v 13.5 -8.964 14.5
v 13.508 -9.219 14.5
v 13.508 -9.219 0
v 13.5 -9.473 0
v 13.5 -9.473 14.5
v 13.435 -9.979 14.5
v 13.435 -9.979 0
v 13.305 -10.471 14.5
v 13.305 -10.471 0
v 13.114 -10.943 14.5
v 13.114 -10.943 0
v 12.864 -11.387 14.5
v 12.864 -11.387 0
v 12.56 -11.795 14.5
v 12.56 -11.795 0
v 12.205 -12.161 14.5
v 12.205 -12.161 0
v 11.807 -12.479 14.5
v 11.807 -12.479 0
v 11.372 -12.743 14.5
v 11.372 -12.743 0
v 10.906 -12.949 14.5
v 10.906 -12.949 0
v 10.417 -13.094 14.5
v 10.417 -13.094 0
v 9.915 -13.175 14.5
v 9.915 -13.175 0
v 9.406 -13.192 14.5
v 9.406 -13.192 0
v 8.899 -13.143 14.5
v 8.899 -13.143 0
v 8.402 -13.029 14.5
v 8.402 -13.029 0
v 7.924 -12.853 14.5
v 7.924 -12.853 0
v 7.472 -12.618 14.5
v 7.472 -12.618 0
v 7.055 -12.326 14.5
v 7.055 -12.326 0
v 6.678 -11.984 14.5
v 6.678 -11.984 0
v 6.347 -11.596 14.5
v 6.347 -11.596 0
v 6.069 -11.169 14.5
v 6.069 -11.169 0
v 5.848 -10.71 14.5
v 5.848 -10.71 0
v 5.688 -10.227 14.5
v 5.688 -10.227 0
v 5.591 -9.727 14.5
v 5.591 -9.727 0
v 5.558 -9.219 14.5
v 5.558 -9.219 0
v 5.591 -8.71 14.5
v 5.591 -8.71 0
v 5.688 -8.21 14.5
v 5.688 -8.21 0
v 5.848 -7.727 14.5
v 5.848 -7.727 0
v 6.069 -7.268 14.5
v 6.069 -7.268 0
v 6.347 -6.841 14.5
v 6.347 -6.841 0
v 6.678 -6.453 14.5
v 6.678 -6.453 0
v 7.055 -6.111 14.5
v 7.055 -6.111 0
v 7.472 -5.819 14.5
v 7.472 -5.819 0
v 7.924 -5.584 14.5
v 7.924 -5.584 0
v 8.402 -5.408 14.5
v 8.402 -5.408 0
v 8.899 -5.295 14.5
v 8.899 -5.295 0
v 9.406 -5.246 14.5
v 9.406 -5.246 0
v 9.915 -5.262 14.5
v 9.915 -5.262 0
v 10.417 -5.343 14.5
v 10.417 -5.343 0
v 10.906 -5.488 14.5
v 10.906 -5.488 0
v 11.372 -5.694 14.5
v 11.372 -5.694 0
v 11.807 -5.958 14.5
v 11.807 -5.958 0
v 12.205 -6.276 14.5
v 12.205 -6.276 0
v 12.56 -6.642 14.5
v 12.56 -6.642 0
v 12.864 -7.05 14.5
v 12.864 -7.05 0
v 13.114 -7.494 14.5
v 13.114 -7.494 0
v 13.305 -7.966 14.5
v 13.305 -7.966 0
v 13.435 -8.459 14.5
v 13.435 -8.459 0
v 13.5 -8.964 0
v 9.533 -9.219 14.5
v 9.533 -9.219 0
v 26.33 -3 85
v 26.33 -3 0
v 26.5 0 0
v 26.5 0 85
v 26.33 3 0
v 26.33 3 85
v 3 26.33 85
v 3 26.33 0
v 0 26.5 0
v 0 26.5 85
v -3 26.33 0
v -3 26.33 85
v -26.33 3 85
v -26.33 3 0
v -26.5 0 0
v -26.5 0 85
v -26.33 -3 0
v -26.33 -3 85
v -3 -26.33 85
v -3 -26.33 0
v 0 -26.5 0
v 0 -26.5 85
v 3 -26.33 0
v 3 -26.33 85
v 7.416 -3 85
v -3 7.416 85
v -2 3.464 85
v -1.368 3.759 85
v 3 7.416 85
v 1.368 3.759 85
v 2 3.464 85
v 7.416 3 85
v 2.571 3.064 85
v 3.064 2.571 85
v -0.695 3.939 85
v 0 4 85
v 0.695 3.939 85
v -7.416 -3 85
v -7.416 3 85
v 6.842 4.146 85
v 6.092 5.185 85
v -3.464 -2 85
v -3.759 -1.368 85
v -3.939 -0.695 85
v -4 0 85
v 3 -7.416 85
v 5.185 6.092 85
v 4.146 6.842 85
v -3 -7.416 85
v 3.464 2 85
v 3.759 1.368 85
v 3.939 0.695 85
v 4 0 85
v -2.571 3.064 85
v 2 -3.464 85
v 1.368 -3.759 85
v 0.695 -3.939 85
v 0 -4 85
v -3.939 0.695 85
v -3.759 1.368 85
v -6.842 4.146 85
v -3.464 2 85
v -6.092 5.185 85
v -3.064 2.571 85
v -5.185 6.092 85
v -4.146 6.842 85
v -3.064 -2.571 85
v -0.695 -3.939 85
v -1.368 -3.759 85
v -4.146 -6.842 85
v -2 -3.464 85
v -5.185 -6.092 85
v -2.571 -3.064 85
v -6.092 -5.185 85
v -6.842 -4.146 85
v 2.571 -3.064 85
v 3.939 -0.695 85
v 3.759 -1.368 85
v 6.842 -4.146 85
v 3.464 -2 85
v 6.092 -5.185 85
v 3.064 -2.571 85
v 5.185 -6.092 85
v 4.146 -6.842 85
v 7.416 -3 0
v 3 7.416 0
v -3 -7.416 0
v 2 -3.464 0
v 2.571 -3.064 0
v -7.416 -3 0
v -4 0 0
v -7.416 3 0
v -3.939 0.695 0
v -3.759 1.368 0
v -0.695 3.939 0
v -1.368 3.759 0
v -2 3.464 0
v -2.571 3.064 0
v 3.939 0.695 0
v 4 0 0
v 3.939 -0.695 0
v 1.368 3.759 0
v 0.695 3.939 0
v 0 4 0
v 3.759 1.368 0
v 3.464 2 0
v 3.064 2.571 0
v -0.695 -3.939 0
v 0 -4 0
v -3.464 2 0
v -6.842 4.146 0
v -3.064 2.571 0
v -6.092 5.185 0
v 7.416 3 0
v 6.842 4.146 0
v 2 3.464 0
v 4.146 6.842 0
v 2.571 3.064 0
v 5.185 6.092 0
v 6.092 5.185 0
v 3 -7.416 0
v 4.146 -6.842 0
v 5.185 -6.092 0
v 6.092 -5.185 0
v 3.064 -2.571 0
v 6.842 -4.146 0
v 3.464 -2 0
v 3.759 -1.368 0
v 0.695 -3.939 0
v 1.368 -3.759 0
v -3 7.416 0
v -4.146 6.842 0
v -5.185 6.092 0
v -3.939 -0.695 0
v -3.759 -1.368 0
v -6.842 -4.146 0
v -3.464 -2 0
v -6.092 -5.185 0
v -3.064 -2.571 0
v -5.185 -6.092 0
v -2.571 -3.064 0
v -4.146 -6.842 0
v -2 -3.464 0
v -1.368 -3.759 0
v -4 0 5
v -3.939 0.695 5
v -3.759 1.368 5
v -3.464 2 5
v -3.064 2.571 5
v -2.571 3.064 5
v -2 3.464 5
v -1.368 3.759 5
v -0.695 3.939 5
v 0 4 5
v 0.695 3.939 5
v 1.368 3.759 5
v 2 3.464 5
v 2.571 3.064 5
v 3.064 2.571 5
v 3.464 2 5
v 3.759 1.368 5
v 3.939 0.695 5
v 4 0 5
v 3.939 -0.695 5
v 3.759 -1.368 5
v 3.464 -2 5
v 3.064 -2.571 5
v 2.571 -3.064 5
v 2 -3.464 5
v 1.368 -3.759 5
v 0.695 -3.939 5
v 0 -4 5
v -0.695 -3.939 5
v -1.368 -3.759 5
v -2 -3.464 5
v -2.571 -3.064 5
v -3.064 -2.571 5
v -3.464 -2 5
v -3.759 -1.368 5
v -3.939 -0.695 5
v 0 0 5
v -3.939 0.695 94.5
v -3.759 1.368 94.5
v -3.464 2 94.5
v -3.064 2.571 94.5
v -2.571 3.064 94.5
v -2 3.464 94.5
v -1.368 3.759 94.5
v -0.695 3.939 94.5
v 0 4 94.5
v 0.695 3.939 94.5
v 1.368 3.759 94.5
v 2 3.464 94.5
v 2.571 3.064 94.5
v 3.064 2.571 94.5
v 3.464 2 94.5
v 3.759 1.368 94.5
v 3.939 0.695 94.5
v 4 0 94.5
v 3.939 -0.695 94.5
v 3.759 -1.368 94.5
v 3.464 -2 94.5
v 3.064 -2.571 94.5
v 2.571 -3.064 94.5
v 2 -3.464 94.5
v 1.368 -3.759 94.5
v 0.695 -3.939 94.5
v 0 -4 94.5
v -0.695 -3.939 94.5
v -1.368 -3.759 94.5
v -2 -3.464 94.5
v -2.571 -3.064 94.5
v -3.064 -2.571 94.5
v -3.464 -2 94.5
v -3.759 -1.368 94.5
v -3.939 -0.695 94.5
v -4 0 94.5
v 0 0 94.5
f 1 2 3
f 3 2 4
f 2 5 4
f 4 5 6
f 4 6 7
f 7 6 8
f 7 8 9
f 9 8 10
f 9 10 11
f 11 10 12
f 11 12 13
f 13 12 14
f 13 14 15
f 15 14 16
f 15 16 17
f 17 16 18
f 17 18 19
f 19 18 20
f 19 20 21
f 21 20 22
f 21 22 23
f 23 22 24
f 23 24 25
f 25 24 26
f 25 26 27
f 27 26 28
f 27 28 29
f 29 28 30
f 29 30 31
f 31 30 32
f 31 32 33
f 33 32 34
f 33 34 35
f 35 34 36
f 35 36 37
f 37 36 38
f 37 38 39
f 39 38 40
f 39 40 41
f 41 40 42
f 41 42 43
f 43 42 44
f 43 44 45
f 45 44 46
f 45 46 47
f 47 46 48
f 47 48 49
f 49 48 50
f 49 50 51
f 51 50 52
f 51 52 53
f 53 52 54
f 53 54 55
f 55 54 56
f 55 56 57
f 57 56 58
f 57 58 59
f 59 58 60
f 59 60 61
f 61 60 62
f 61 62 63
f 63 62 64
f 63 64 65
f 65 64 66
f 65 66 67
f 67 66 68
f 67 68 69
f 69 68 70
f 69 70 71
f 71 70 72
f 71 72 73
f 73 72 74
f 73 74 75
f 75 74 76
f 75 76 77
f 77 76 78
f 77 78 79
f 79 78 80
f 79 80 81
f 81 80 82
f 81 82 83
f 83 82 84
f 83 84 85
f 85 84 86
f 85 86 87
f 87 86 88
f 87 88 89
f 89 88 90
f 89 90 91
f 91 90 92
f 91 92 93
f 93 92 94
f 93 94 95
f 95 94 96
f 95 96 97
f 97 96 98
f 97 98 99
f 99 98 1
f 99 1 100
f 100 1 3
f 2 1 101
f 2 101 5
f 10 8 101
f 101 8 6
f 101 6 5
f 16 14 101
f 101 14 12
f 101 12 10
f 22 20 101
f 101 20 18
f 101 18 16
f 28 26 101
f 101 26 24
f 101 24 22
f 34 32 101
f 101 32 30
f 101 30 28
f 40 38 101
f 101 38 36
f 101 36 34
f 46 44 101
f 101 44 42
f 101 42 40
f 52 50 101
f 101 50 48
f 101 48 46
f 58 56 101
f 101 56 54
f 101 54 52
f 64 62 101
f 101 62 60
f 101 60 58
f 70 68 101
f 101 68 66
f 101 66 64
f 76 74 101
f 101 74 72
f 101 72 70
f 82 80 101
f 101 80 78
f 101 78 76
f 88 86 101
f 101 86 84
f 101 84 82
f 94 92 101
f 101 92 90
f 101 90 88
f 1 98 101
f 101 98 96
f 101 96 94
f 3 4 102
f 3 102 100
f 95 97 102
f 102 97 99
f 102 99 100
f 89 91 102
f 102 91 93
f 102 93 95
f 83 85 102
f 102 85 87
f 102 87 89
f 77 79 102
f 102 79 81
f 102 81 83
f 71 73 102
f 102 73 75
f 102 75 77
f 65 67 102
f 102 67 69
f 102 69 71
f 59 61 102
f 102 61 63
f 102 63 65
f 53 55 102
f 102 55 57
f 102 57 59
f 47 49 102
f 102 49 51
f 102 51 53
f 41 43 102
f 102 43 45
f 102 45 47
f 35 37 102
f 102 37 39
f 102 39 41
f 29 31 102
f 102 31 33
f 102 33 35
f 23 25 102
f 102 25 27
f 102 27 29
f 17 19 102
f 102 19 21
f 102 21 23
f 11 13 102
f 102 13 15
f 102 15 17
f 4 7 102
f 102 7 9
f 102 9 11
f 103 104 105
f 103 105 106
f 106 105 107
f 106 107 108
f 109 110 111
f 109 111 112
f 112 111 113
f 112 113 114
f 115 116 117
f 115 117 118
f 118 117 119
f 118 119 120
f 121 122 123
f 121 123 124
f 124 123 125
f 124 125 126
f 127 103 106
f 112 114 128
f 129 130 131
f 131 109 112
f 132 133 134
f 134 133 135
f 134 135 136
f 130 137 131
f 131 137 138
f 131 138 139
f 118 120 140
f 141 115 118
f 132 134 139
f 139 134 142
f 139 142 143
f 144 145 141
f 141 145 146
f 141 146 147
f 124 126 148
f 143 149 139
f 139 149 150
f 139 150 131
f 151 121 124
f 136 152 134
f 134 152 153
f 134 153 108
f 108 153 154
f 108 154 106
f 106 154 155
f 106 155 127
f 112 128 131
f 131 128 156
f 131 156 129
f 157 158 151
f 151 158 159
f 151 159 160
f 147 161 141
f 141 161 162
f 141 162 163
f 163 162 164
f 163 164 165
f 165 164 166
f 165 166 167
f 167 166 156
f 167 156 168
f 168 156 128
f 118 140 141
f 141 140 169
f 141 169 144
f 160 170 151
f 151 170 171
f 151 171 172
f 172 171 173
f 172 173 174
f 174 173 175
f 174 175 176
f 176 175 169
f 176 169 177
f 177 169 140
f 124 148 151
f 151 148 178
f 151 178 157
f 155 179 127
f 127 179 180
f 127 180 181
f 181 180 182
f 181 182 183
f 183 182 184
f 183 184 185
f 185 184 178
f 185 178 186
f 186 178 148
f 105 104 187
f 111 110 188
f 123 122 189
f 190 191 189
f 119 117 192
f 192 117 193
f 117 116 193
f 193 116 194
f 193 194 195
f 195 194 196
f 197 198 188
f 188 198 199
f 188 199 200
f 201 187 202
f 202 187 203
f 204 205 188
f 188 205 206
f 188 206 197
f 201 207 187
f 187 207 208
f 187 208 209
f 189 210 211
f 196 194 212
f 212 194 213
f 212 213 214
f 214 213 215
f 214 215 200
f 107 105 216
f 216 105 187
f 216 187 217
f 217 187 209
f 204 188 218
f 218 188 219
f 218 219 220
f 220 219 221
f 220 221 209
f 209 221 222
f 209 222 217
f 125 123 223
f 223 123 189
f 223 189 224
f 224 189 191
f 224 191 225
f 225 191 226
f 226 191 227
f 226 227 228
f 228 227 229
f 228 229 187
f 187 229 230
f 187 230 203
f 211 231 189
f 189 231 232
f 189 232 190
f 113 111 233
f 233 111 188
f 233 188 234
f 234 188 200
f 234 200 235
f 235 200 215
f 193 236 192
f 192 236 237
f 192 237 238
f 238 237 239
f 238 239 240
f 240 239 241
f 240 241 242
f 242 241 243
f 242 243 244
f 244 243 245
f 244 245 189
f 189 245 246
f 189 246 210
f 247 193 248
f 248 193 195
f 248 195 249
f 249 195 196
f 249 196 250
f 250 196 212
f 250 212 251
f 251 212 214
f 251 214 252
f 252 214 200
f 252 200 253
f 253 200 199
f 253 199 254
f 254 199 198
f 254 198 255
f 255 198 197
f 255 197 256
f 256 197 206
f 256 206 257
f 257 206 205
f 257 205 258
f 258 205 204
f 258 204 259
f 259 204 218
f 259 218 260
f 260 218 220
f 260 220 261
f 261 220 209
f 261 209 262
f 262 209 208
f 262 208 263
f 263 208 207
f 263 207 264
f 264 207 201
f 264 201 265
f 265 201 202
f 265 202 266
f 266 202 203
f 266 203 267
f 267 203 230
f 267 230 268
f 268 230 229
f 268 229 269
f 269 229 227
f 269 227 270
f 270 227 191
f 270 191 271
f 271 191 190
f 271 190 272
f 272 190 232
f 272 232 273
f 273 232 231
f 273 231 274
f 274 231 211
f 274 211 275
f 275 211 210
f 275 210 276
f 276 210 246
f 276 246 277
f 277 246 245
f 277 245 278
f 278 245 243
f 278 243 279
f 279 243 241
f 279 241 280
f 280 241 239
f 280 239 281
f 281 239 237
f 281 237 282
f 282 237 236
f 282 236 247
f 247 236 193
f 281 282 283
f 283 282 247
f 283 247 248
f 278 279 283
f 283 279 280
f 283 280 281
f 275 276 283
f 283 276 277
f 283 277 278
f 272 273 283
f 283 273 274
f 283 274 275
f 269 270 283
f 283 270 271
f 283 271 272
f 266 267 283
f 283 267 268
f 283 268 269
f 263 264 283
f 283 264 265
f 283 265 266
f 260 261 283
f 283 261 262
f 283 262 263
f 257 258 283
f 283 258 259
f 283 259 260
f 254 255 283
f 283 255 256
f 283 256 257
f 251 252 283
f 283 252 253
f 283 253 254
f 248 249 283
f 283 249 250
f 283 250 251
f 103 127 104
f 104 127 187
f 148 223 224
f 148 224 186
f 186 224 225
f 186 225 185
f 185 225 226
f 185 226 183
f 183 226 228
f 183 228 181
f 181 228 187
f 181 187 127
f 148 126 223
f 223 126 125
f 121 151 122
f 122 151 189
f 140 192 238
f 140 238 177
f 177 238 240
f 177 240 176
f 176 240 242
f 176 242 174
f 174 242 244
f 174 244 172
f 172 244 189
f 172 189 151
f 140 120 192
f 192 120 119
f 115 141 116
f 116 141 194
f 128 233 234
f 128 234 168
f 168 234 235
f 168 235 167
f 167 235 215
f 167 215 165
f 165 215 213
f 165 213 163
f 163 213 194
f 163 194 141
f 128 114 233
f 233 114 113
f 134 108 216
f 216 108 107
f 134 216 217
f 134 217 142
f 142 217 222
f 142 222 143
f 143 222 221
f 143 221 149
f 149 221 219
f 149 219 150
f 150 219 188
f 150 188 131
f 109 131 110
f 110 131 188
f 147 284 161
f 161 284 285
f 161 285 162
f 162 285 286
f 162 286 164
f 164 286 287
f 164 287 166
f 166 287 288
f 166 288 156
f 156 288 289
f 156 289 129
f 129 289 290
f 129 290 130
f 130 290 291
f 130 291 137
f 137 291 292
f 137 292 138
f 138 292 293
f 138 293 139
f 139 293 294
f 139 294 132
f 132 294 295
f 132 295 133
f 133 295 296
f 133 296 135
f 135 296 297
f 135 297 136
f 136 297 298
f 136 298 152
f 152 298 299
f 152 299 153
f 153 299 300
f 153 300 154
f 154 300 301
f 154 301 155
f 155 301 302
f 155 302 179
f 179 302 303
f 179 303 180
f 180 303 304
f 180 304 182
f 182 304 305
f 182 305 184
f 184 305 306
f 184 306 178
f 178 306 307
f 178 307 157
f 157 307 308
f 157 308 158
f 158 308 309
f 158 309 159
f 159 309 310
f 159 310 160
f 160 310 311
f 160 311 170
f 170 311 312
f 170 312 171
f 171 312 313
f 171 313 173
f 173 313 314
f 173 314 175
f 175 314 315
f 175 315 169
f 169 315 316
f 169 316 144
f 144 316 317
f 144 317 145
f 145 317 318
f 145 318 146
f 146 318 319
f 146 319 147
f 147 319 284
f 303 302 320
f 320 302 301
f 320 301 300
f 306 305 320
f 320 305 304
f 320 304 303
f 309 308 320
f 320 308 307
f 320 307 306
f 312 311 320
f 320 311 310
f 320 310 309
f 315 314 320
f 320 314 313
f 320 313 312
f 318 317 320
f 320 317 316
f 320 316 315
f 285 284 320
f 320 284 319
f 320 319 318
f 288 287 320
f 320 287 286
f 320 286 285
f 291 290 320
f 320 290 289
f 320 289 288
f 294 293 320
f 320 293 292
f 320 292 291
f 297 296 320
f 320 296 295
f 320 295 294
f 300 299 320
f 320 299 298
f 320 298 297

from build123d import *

# Parameters (mm, degrees)
SKETCH1_R           = 26.5
BOSS_EXTRUDE1_DEPTH = 85
SKETCH3_R           = 4
CUT_EXTRUDE2_DEPTH  = 5
SKETCH4_OUTSIDE_W   = 77.666
SKETCH4_OUTSIDE_H   = 77.666
CUT_EXTRUDE3_DEPTH  = 86
SKETCH5_R           = 3.975
BOSS_EXTRUDE2_DEPTH = 14.5
SKETCH2_R           = 4
BOSS_EXTRUDE3_DEPTH = 9.5


with BuildPart() as part:
    # Sketch1 → Boss-Extrude1 (new body)
    with BuildSketch(Plane.XY):
        Circle(SKETCH1_R)
    extrude(amount=BOSS_EXTRUDE1_DEPTH)

    # Sketch3 → Cut-Extrude2 (cut)
    with BuildSketch(Plane(origin=(0, 0, 0), x_dir=(-1, 0, 0), z_dir=(0, 0, -1))):
        Circle(SKETCH3_R)
    extrude(amount=-CUT_EXTRUDE2_DEPTH, mode=Mode.SUBTRACT)

    # Sketch4 outside → Cut-Extrude3 (cut, through all)
    with BuildSketch(Plane(origin=(0, 0, 0), x_dir=(-1, 0, 0), z_dir=(0, 0, -1))):
        Rectangle(SKETCH4_OUTSIDE_W, SKETCH4_OUTSIDE_H)
        with BuildLine():
            Line((-26.329641091, 3), (-7.416198487, 3))
            ThreePointArc((-7.416198487, 3), (-5.656854249, 5.656854249), (-3, 7.416198487))
            Line((-3, 7.416198487), (-3, 26.329641091))
            ThreePointArc((-3, 26.329641091), (0, 26.5), (3, 26.329641091))
            Line((3, 26.329641091), (3, 7.416198487))
            ThreePointArc((3, 7.416198487), (5.656854249, 5.656854249), (7.416198487, 3))
            Line((7.416198487, 3), (26.329641091, 3))
            ThreePointArc((26.329641091, 3), (26.5, 0), (26.329641091, -3))
            Line((26.329641091, -3), (7.416198487, -3))
            ThreePointArc((7.416198487, -3), (5.656854249, -5.656854249), (3, -7.416198487))
            Line((3, -7.416198487), (3, -26.329641091))
            ThreePointArc((3, -26.329641091), (0, -26.5), (-3, -26.329641091))
            Line((-3, -26.329641091), (-3, -7.416198487))
            ThreePointArc((-3, -7.416198487), (-5.656854249, -5.656854249), (-7.416198487, -3))
            Line((-7.416198487, -3), (-26.329641091, -3))
            ThreePointArc((-26.329641091, -3), (-26.5, 0), (-26.329641091, 3))
        make_face(mode=Mode.SUBTRACT)
    extrude(amount=-CUT_EXTRUDE3_DEPTH, mode=Mode.SUBTRACT)

    # Sketch2 → Boss-Extrude3 (add)
    with BuildSketch(Plane.XY.offset(85)):
        Circle(SKETCH2_R)
    extrude(amount=BOSS_EXTRUDE3_DEPTH)


with BuildPart() as body_2:
    # Sketch5 → Boss-Extrude2 (new body)
    with BuildSketch(Plane.XY):
        with Locations((9.53294491, -9.218672001)):
            Circle(SKETCH5_R)
    extrude(amount=BOSS_EXTRUDE2_DEPTH)


solid = Compound([part.part, body_2.part])
